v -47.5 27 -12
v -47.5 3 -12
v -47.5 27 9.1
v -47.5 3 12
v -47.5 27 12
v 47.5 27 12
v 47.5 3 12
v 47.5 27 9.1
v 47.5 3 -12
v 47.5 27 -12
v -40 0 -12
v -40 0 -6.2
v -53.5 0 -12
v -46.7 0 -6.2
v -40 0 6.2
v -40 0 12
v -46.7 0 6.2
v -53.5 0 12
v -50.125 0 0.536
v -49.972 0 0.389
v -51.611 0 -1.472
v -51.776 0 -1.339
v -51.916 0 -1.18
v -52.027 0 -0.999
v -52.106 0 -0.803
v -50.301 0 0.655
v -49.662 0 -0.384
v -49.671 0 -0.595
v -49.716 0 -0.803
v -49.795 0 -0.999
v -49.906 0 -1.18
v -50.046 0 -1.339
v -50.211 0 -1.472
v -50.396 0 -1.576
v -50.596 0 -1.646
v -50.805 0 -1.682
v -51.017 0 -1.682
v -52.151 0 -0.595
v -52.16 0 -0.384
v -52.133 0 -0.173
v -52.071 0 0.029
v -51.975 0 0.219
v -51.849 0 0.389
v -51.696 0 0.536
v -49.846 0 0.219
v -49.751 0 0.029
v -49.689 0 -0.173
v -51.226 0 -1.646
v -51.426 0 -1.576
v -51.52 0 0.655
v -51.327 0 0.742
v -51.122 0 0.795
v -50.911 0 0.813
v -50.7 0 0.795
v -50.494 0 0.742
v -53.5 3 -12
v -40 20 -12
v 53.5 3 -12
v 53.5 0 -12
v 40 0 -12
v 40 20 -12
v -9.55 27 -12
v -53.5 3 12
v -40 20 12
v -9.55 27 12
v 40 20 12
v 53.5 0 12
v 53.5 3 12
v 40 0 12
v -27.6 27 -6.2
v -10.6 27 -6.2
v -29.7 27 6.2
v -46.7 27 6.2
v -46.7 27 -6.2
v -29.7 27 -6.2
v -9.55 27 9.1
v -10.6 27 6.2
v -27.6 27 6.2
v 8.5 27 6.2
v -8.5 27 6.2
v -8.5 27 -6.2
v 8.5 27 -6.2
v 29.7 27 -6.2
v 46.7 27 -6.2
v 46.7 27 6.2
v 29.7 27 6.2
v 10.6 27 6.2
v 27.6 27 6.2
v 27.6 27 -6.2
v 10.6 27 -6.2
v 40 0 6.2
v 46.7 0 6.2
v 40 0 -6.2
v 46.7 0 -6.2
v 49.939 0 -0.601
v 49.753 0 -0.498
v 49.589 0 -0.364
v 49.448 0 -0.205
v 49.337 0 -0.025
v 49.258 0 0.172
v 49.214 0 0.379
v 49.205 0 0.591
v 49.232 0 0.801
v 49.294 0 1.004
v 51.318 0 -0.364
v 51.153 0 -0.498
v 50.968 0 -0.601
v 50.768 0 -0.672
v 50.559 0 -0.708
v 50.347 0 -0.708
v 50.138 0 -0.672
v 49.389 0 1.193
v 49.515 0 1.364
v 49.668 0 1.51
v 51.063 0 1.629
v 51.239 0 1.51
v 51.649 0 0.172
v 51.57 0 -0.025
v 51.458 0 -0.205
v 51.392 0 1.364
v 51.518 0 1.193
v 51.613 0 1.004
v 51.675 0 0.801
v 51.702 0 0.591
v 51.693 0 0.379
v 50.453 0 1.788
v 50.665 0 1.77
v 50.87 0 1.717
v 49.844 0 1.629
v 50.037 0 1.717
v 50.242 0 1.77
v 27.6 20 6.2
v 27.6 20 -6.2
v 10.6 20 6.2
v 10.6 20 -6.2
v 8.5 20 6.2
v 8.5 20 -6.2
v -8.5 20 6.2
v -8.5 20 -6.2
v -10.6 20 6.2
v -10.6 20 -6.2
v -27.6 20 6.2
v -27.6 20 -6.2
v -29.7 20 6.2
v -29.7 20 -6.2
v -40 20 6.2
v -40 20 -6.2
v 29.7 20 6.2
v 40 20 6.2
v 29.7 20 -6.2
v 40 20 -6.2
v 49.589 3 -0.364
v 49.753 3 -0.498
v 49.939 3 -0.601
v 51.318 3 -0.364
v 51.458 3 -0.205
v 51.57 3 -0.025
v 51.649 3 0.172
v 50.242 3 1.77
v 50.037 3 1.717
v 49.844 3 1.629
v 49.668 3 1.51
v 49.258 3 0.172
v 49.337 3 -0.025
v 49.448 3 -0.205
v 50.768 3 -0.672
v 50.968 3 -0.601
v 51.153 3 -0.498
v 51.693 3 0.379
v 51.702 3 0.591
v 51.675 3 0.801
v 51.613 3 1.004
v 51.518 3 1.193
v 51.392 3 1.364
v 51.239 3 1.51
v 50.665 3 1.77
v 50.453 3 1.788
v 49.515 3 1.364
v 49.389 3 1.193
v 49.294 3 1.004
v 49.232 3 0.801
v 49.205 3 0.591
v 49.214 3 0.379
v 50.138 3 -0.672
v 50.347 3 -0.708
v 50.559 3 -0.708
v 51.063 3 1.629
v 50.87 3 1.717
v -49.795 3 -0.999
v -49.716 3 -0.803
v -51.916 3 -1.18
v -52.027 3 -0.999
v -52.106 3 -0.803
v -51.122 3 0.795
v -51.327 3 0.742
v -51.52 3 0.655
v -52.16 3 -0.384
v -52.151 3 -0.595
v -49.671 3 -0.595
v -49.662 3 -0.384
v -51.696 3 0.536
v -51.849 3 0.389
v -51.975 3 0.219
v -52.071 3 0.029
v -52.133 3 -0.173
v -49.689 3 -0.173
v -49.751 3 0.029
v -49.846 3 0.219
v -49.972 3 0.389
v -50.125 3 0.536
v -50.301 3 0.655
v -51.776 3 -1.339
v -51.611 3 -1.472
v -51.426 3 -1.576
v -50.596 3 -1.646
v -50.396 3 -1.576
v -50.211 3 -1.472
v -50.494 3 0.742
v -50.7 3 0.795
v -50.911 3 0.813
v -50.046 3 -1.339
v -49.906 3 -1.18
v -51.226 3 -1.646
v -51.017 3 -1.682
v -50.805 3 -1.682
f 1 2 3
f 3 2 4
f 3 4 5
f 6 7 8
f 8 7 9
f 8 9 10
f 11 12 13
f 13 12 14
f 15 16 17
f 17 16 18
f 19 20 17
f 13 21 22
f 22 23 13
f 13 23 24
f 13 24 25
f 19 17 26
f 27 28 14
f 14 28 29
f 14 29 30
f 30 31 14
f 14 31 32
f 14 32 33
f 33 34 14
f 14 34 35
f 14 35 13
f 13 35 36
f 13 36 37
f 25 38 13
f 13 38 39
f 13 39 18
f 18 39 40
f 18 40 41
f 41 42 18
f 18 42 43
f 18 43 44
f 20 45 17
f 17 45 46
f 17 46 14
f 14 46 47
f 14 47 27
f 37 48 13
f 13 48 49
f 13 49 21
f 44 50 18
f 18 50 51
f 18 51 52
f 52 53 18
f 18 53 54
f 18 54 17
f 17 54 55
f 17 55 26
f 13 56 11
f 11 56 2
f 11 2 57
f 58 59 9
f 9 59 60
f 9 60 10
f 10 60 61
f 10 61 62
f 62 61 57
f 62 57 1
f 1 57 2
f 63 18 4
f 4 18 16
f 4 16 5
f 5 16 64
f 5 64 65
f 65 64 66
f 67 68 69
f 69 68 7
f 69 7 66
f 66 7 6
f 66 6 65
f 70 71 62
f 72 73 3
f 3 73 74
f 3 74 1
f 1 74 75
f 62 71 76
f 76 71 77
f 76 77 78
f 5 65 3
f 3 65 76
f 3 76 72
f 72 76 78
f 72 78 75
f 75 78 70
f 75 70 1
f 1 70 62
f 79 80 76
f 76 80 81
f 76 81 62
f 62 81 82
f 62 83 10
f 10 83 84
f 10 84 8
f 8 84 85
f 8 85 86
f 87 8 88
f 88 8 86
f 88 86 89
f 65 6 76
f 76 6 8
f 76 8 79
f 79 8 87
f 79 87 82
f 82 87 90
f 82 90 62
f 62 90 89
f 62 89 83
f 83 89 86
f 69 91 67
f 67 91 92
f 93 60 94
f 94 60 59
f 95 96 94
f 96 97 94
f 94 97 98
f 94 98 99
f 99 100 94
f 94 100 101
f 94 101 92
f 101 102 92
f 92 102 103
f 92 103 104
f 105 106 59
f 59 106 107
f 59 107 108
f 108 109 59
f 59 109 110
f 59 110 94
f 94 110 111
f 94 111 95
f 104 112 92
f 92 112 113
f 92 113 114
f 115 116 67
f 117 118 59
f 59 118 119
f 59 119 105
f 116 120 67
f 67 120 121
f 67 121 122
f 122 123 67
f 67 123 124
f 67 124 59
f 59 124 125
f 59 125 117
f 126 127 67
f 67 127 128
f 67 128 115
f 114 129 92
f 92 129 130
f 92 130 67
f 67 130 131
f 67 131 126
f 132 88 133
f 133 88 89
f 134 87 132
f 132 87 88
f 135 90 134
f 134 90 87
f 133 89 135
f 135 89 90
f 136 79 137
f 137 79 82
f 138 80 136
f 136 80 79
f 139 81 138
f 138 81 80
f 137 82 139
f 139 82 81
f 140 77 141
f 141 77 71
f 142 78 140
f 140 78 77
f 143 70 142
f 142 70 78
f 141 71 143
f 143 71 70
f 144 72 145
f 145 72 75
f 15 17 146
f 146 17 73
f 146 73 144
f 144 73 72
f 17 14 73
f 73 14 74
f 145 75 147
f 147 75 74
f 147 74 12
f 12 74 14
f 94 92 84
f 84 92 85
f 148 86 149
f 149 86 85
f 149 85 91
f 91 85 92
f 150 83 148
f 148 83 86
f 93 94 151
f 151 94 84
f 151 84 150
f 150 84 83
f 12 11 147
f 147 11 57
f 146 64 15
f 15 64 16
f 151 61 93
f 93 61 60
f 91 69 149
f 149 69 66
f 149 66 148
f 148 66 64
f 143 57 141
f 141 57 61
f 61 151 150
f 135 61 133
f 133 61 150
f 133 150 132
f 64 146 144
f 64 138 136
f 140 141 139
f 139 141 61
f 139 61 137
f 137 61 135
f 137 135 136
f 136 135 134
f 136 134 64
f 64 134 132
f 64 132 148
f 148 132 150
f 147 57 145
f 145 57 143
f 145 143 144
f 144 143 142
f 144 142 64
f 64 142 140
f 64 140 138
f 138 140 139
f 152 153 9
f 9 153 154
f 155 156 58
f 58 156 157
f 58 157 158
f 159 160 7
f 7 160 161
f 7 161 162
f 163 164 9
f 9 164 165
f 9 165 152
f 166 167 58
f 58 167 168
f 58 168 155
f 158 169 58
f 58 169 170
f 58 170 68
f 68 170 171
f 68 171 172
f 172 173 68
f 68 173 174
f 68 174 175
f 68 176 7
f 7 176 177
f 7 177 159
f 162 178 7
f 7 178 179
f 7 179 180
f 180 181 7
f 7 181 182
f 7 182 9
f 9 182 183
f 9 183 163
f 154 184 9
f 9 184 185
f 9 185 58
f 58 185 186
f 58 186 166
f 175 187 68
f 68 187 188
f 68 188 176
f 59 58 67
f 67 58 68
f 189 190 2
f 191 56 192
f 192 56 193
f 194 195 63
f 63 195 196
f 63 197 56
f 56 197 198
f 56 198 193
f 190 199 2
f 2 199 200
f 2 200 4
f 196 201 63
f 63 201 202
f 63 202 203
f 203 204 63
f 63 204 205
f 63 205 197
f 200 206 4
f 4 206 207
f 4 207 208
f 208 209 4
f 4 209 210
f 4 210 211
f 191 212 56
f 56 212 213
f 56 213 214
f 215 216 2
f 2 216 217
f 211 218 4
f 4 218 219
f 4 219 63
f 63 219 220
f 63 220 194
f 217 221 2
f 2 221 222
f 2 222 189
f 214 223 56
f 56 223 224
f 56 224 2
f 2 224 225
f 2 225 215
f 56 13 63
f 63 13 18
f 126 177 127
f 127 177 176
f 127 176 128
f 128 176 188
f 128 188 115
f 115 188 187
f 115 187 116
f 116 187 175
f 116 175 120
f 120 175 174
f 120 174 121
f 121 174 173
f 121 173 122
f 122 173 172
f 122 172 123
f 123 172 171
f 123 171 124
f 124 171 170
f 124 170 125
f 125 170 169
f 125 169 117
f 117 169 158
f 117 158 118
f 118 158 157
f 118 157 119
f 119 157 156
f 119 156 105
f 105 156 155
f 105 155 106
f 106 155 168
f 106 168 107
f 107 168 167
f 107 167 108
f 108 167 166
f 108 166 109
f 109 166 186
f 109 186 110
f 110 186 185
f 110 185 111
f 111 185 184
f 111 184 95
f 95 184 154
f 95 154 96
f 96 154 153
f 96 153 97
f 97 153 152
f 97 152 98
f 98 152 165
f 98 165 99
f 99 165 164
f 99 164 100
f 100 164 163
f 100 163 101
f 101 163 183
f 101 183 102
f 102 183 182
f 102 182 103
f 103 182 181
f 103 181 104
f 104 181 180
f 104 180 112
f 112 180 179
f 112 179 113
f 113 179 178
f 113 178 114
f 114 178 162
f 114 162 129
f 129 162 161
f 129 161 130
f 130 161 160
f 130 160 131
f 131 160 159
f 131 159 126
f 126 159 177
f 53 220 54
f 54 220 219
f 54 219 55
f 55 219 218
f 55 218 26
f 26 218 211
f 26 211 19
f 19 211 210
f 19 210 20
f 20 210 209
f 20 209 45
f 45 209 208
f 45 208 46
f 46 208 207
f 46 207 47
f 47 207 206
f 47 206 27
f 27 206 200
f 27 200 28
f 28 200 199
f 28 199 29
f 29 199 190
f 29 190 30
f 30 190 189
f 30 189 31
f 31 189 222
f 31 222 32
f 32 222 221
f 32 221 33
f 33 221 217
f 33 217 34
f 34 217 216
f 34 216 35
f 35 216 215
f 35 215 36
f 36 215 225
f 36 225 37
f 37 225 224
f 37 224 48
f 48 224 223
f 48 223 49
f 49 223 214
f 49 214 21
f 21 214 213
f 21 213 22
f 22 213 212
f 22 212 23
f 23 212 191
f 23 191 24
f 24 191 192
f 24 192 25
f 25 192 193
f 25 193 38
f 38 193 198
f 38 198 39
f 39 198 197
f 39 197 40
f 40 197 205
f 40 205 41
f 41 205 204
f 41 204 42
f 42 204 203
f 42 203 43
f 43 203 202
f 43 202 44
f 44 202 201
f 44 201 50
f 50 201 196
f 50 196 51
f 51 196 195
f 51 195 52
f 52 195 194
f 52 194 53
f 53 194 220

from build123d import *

# Parameters (mm, degrees)
SKETCH1_W           = 95
SKETCH1_H           = 24
BOSS_EXTRUDE1_DEPTH = 27
SKETCH2_W           = 17
SKETCH2_H           = 12.4
CUT_EXTRUDE1_DEPTH  = 56.939699677
SKETCH3_W           = 80
SKETCH3_H           = 44.068449986
CUT_EXTRUDE2_DEPTH  = 20
SKETCH4_W           = 24
SKETCH4_H           = 3
BOSS_EXTRUDE2_DEPTH = 6
SKETCH5_W           = 24
SKETCH5_H           = 3
BOSS_EXTRUDE3_DEPTH = 6
SKETCH6_R           = 1.25
CUT_EXTRUDE3_DEPTH  = 60.851900555
SKETCH7_R           = 1.25
CUT_EXTRUDE4_DEPTH  = 60.851900555


with BuildPart() as part:
    # Sketch1 → Boss-Extrude1 (new body)
    with BuildSketch(Plane(origin=(0, 0, 0), x_dir=(1, 0, 0), z_dir=(0, 1, 0))):
        Rectangle(SKETCH1_W, SKETCH1_H)
    extrude(amount=BOSS_EXTRUDE1_DEPTH)

    # Sketch2 → Cut-Extrude1 (cut, through all)
    with BuildSketch(Plane(origin=(0, 27, 0), x_dir=(1, 0, 0), z_dir=(0, 1, 0))):
        with Locations((19.1, 0)):
            Rectangle(SKETCH2_W, SKETCH2_H)
        Rectangle(SKETCH2_W, SKETCH2_H)
        with Locations((-19.1, 0)):
            Rectangle(SKETCH2_W, SKETCH2_H)
        with Locations((-38.2, 0)):
            Rectangle(SKETCH2_W, SKETCH2_H)
        with Locations((38.2, 0)):
            Rectangle(SKETCH2_W, SKETCH2_H)
    extrude(amount=-CUT_EXTRUDE1_DEPTH, mode=Mode.SUBTRACT)

    # Sketch3 → Cut-Extrude2 (cut)
    with BuildSketch(Plane.XZ):
        Rectangle(SKETCH3_W, SKETCH3_H)
    extrude(amount=-CUT_EXTRUDE2_DEPTH, mode=Mode.SUBTRACT)

    # Sketch4 → Boss-Extrude2 (add)
    with BuildSketch(Plane(origin=(47.5, 0, 0), x_dir=(0, 0, -1), z_dir=(1, 0, 0))):
        with Locations((0, 1.5)):
            Rectangle(SKETCH4_W, SKETCH4_H)
    extrude(amount=BOSS_EXTRUDE2_DEPTH)

    # Sketch5 → Boss-Extrude3 (add)
    with BuildSketch(Plane.ZY.offset(47.5)):
        with Locations((0, 1.5)):
            Rectangle(SKETCH5_W, SKETCH5_H)
    extrude(amount=BOSS_EXTRUDE3_DEPTH)

    # Sketch6 → Cut-Extrude3 (cut, through all)
    with BuildSketch(Plane(origin=(0, 3, 0), x_dir=(1, 0, 0), z_dir=(0, 1, 0))):
        with Locations(Location((50.45345714, -0.537948729, 0), (0, 0, 270))):
            Circle(SKETCH6_R)
    extrude(amount=-CUT_EXTRUDE3_DEPTH, mode=Mode.SUBTRACT)

    # Sketch7 → Cut-Extrude4 (cut, through all)
    with BuildSketch(Plane(origin=(0, 3, 0), x_dir=(1, 0, 0), z_dir=(0, 1, 0))):
        with Locations(Location((-50.910758479, 0.436684104, 0), (0, 0, 270))):
            Circle(SKETCH7_R)
    extrude(amount=-CUT_EXTRUDE4_DEPTH, mode=Mode.SUBTRACT)


solid = part.part
